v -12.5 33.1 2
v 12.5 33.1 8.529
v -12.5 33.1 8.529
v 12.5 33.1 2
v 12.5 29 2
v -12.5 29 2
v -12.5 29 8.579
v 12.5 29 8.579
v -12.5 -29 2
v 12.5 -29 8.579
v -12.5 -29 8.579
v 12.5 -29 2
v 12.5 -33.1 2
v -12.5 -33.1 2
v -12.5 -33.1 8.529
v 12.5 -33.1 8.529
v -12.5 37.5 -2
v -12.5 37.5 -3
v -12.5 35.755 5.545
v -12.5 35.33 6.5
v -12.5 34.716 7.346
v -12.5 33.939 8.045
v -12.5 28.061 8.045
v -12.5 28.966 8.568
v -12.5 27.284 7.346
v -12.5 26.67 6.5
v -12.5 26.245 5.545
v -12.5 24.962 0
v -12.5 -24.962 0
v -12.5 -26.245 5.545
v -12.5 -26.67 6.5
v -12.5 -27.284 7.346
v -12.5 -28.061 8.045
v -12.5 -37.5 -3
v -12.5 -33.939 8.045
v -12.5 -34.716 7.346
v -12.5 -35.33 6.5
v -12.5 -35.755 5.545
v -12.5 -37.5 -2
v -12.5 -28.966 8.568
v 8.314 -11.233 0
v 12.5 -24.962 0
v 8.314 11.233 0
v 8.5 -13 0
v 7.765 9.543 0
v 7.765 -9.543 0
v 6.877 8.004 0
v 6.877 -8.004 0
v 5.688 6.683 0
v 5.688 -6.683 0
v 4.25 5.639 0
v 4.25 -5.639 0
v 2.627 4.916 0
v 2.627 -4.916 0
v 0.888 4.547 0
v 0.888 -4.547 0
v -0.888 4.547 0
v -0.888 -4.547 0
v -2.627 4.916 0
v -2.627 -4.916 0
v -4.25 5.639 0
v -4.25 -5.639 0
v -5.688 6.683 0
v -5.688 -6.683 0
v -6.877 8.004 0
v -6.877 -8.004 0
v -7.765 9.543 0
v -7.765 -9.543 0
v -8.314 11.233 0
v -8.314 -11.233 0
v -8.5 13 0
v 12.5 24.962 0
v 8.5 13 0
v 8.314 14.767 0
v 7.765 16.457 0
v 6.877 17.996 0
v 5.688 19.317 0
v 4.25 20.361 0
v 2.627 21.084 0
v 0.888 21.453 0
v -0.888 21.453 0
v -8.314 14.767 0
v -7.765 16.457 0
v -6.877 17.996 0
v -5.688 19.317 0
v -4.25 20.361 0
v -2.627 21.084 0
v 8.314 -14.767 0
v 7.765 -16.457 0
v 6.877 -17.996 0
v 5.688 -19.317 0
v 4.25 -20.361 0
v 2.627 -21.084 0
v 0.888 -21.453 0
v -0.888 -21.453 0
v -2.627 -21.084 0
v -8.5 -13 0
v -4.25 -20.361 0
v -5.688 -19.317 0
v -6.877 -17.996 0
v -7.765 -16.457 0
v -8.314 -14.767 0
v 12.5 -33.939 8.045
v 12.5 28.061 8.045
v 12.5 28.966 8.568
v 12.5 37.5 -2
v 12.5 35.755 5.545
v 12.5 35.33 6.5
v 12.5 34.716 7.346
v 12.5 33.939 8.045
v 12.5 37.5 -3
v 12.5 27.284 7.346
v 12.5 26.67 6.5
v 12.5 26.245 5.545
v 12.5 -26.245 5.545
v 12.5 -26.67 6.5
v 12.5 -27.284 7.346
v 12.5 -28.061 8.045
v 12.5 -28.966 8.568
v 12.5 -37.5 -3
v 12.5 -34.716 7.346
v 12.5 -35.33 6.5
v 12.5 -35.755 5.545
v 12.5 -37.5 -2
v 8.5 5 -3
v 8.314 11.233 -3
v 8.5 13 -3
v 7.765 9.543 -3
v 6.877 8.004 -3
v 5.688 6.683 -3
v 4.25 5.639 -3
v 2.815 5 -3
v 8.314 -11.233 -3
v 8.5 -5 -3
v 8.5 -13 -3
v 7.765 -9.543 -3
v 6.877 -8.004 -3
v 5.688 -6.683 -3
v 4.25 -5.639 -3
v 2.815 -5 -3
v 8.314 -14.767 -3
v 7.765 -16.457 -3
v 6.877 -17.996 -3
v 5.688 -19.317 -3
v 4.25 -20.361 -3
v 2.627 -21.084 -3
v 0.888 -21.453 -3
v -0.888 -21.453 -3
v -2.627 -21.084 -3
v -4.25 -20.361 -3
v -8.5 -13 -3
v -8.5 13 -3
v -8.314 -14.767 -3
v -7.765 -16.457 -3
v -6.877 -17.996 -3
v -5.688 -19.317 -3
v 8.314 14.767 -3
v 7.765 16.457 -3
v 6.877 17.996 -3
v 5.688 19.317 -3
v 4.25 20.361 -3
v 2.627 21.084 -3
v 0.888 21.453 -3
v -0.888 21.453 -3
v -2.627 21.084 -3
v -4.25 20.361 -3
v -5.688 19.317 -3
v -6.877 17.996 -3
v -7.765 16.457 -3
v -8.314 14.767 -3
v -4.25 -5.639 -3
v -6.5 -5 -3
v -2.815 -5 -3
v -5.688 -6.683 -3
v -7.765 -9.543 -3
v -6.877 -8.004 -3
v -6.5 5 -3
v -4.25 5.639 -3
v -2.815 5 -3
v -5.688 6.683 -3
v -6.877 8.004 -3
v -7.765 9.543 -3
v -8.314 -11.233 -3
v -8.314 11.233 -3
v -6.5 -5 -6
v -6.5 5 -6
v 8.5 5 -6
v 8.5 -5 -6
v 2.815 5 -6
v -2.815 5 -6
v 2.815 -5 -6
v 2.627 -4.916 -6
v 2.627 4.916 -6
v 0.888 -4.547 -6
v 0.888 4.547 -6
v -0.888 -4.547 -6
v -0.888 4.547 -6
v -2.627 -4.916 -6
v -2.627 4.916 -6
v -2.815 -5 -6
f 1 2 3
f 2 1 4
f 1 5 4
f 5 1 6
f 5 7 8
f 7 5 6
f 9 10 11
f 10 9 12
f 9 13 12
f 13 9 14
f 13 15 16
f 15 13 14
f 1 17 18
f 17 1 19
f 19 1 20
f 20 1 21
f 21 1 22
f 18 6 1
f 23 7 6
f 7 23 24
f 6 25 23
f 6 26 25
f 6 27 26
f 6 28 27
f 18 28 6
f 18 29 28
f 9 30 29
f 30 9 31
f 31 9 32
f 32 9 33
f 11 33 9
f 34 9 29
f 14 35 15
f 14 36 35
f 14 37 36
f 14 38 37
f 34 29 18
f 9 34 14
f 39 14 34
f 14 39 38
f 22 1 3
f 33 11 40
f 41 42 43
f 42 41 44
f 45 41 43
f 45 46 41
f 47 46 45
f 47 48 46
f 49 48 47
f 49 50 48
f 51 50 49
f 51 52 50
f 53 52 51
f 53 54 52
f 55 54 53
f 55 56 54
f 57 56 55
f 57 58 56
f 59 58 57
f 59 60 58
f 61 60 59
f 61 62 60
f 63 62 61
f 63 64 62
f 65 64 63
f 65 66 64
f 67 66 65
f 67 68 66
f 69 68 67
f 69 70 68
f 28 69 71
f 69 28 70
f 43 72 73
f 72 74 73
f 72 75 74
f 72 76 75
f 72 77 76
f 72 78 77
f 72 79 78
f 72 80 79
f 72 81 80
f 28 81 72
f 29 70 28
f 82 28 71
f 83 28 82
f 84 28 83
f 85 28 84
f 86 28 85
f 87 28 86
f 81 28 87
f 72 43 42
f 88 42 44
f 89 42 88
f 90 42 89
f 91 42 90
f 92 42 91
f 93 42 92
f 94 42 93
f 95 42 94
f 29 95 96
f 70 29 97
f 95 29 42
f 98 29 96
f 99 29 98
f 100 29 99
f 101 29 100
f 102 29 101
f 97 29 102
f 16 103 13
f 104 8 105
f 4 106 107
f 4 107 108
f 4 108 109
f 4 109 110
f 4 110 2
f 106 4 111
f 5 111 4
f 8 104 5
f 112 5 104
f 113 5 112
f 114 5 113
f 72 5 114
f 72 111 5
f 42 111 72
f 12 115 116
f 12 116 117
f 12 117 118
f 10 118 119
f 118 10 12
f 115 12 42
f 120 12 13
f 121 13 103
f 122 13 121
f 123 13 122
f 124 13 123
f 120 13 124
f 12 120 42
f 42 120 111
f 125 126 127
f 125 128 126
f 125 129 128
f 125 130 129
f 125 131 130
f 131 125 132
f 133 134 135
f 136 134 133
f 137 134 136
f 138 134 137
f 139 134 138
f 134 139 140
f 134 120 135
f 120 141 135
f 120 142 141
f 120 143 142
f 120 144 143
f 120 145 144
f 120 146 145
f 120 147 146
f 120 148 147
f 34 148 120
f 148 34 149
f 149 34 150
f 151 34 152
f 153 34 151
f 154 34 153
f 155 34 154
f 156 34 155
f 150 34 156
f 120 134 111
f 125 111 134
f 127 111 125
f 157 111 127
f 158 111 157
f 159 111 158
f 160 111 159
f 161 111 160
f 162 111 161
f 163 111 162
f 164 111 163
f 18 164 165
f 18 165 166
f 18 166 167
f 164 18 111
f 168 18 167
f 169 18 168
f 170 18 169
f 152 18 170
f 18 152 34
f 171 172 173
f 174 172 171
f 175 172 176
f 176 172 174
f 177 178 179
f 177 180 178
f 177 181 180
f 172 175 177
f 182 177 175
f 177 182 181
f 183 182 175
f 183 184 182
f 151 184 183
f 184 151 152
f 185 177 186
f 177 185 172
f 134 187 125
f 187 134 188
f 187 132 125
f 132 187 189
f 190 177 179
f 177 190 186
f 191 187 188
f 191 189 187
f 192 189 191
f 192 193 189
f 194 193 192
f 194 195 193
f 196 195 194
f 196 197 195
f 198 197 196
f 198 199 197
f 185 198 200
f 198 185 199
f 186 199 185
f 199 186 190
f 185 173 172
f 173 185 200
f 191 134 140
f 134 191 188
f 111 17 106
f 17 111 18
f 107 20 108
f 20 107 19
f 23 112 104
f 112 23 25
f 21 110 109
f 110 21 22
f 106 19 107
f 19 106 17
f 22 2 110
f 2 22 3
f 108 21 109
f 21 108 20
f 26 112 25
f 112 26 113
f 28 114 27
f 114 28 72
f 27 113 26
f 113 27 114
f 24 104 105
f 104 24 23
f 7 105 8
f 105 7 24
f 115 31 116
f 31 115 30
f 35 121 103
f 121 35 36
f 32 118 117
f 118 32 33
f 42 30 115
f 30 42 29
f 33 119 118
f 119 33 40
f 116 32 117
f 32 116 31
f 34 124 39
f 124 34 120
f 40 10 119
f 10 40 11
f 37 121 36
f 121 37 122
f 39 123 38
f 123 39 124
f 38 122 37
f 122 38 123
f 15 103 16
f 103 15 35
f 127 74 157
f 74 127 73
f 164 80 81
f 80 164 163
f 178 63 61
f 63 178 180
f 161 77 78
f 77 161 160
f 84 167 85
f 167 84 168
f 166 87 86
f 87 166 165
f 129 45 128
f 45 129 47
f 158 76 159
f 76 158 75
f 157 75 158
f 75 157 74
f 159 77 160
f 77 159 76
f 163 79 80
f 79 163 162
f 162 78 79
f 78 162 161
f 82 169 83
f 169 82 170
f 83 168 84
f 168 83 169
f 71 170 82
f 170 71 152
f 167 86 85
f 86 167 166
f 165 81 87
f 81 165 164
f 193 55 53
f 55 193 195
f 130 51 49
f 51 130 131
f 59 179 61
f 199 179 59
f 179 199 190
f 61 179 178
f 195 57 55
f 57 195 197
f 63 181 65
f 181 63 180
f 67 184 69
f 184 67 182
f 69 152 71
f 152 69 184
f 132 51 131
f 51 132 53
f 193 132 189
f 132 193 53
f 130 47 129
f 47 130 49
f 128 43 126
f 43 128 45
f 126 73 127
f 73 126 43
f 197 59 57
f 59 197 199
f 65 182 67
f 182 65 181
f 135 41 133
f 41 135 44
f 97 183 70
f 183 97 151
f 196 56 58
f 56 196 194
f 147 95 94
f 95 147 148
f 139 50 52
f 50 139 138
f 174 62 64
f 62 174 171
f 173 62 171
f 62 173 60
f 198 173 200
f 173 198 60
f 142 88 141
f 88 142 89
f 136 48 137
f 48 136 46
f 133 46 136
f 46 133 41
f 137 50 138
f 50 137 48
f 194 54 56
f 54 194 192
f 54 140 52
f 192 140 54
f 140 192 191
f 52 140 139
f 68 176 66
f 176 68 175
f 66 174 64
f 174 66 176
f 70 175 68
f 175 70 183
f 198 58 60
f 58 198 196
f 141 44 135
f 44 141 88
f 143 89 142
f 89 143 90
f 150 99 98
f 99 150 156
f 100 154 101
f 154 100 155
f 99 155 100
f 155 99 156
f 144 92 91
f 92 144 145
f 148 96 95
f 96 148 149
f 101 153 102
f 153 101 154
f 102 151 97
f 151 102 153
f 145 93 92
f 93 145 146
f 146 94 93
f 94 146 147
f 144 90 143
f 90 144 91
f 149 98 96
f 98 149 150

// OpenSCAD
t = 5;

rx = 100;
rdy = 4.1;
roy = 36;
royl = 58;





module rails(oz=2) {
    
  translate([-rx/2,roy/2,oz]) cube([rx,rdy,rdy]);
  mirror([0,1,0]){
    translate([-rx/2,roy/2,oz]) cube([rx,rdy,rdy]);
  }
    
}

module railsLow(oz=2) {
    
  translate([-rx/2,royl/2,oz]) cube([rx,rdy,rdy]);
  mirror([0,1,0]){
    translate([-rx/2,royl/2,oz]) cube([rx,rdy,rdy]);
  }
    
}


difference(){
union(){
  translate([-25/2,-65/2,-3])cube([25,65,3]);
  translate([-25/2 + 6,-10/2,-6])cube([15,10,6]);
    
  hull(){
    translate([-25/2,31,4])rotate([0,90,0])cylinder(r=5,h=25,$fn=30);
    translate([-25/2,31-13/2,-3])cube([25,13,1]);
  }
  hull(){
    translate([-25/2,-31,4])rotate([0,90,0])cylinder(r=5,h=25,$fn=30);
    translate([-25/2,-31-13/2,-3])cube([25,13,1]);
  }
  

}

  
  translate([0,26/2,-7])cylinder(r=17/2,h=10,$fn=30);

  translate([0,-26/2,-7])cylinder(r=17/2,h=10,$fn=30);
railsLow(oz=2);
railsLow(oz=5);
}
